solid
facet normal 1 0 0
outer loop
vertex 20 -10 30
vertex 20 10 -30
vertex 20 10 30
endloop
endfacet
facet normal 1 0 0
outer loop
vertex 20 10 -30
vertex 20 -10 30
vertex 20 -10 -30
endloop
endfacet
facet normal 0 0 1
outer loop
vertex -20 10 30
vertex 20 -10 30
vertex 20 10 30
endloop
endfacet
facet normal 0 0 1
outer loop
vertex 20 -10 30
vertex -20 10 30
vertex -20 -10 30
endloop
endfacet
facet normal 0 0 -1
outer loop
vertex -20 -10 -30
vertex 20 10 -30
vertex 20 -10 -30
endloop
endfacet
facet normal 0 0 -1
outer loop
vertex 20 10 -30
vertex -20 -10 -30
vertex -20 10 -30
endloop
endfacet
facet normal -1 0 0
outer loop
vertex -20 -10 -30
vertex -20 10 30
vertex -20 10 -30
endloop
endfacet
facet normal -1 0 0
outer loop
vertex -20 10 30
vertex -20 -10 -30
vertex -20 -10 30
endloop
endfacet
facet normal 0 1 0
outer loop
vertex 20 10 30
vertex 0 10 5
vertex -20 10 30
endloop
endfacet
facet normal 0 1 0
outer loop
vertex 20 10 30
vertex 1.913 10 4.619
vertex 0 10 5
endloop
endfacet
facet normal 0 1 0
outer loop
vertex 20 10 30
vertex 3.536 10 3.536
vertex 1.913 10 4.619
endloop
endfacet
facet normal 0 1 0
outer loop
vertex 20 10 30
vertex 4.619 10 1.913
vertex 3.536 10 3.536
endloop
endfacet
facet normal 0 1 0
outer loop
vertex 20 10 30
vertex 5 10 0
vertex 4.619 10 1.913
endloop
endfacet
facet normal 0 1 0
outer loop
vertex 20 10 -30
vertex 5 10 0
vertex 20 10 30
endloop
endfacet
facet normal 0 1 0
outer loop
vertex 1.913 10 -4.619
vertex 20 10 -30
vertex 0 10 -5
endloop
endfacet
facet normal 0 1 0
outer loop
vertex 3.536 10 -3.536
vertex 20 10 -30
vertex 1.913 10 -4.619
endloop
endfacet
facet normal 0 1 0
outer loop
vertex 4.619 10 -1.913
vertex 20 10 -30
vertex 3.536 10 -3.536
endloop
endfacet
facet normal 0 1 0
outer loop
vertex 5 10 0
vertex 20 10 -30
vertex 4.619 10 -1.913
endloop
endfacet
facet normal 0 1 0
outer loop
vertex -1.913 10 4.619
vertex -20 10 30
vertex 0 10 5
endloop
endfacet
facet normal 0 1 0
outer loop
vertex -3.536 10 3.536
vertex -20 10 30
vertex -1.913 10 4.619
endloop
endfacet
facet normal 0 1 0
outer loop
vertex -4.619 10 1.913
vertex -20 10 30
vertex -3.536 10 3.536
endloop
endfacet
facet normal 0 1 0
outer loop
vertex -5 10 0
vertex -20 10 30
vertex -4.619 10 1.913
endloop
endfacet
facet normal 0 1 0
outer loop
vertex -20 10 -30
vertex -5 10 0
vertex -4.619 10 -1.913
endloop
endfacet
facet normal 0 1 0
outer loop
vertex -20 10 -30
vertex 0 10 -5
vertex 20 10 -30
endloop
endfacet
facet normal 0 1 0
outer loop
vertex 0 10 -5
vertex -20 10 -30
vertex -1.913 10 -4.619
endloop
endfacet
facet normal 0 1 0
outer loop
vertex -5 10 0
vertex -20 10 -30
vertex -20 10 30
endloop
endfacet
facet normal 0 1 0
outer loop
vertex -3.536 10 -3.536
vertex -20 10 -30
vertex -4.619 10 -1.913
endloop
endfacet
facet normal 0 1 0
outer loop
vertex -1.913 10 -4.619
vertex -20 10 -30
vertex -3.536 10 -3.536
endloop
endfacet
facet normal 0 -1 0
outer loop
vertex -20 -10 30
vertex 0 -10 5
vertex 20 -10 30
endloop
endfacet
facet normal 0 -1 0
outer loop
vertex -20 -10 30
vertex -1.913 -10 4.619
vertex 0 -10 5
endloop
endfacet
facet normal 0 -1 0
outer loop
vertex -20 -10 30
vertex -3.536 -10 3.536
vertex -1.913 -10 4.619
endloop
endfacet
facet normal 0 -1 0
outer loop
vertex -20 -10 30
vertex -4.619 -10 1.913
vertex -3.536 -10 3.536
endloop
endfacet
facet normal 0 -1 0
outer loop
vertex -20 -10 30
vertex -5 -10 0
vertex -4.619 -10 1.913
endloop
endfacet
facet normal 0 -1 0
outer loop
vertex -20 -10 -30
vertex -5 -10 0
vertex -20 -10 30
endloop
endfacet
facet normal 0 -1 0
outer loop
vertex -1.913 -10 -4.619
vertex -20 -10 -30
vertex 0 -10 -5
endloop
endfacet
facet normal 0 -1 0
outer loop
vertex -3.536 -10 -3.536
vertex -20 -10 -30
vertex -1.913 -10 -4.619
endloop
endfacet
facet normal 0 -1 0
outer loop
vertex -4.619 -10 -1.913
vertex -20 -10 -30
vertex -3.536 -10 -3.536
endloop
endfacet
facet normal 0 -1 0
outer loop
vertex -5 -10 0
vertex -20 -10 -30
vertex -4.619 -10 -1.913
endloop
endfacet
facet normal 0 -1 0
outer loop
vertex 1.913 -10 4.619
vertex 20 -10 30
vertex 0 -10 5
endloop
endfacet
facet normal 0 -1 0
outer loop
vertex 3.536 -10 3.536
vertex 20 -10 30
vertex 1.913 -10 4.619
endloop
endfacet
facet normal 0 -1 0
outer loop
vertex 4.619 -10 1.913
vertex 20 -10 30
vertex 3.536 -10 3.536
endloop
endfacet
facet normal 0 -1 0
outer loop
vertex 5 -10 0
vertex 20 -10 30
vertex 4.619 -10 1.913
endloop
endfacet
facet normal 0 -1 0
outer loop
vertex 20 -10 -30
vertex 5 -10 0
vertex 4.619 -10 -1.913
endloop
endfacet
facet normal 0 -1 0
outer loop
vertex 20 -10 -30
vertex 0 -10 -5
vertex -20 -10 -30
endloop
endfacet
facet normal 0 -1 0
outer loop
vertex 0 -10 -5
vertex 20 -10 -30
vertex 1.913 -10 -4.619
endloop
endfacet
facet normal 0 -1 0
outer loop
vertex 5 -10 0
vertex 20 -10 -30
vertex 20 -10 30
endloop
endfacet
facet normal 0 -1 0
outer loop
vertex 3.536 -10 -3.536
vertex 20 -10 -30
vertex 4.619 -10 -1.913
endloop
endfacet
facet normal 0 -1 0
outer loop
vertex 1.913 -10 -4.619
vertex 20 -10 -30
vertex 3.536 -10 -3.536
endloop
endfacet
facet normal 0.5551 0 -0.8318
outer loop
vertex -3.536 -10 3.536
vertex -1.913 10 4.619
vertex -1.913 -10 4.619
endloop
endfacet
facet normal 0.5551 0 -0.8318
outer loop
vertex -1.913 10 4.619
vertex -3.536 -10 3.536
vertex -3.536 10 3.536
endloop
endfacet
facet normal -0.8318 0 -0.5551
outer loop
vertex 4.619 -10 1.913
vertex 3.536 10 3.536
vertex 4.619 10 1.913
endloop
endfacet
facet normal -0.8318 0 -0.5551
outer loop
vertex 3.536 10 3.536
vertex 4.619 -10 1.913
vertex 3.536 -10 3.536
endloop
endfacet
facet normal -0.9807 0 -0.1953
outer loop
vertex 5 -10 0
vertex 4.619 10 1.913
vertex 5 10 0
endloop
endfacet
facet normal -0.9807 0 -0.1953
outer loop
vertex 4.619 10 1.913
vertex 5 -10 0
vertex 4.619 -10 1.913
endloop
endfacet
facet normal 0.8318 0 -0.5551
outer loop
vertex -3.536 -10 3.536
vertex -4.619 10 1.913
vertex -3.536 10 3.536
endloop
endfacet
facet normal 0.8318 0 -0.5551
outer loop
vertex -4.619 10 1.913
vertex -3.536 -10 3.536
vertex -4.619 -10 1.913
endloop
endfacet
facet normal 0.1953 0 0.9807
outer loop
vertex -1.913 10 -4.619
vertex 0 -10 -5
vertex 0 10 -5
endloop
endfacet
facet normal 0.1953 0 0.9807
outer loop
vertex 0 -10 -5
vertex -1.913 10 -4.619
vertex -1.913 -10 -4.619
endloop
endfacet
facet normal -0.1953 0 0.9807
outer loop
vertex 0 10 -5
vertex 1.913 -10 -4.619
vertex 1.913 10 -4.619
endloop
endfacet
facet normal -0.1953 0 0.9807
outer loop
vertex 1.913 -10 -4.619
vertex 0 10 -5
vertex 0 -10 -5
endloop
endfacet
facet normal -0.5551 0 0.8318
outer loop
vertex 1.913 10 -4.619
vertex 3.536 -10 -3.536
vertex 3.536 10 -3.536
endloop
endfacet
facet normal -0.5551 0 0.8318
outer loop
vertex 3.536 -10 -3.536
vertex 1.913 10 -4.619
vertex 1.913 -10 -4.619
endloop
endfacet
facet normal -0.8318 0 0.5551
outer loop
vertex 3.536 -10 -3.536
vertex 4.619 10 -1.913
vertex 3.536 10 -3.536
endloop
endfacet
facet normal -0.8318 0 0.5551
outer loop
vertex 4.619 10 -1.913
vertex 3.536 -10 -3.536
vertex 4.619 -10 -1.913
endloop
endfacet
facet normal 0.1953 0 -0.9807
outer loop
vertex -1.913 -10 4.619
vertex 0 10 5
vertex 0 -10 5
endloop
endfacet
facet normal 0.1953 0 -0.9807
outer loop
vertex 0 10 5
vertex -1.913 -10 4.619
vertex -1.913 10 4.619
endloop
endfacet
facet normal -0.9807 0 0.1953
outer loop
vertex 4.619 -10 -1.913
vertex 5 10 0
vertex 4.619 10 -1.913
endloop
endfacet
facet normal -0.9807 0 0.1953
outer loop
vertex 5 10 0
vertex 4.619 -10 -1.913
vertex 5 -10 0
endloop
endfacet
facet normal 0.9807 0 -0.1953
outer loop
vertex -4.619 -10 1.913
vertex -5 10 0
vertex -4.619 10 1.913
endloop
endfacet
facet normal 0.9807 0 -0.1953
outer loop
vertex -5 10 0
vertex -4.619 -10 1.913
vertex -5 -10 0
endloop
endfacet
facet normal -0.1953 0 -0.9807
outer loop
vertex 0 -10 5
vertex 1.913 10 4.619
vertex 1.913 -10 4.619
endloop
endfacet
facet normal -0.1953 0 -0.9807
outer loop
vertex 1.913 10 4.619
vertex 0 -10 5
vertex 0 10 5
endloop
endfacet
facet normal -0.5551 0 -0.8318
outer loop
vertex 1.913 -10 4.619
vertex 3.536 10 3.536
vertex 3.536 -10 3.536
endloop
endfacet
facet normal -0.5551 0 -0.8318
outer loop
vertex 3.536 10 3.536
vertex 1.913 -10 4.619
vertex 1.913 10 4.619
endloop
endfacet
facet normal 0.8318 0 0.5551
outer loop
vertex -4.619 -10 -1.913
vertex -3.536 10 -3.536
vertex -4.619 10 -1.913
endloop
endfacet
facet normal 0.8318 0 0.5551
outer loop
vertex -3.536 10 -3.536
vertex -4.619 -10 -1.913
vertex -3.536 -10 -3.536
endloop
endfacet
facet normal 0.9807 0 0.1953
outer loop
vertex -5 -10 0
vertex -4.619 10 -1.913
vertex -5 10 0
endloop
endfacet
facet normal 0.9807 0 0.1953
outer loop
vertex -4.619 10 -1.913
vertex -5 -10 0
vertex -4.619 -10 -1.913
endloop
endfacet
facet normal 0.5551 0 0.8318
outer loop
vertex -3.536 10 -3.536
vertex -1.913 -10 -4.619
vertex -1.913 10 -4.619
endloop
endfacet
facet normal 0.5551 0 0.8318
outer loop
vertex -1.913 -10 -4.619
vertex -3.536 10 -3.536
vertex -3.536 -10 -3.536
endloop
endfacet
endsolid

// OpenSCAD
// Dimensions for the rectangular block
block_length = 40;  // Length of the block
block_width = 20;   // Width of the block
block_height = 60;  // Height of the block

// Dimensions for the circular hole
hole_diameter = 10; // Diameter of the hole

// Main module to create the rectangular block with a circular hole
module rectangular_block() {
    // Create the rectangular block
    difference() {
        // Base block
        cube([block_length, block_width, block_height], center = true);
        
        // Circular hole
        rotate([90, 0, 0])  // Align the hole perpendicular to the largest face
        translate([0, 0, 0])  // Center the hole
        cylinder(r = hole_diameter / 2, h = block_length + 2, center = true);
    }
}

// Call the module to render the model
rectangular_block();
